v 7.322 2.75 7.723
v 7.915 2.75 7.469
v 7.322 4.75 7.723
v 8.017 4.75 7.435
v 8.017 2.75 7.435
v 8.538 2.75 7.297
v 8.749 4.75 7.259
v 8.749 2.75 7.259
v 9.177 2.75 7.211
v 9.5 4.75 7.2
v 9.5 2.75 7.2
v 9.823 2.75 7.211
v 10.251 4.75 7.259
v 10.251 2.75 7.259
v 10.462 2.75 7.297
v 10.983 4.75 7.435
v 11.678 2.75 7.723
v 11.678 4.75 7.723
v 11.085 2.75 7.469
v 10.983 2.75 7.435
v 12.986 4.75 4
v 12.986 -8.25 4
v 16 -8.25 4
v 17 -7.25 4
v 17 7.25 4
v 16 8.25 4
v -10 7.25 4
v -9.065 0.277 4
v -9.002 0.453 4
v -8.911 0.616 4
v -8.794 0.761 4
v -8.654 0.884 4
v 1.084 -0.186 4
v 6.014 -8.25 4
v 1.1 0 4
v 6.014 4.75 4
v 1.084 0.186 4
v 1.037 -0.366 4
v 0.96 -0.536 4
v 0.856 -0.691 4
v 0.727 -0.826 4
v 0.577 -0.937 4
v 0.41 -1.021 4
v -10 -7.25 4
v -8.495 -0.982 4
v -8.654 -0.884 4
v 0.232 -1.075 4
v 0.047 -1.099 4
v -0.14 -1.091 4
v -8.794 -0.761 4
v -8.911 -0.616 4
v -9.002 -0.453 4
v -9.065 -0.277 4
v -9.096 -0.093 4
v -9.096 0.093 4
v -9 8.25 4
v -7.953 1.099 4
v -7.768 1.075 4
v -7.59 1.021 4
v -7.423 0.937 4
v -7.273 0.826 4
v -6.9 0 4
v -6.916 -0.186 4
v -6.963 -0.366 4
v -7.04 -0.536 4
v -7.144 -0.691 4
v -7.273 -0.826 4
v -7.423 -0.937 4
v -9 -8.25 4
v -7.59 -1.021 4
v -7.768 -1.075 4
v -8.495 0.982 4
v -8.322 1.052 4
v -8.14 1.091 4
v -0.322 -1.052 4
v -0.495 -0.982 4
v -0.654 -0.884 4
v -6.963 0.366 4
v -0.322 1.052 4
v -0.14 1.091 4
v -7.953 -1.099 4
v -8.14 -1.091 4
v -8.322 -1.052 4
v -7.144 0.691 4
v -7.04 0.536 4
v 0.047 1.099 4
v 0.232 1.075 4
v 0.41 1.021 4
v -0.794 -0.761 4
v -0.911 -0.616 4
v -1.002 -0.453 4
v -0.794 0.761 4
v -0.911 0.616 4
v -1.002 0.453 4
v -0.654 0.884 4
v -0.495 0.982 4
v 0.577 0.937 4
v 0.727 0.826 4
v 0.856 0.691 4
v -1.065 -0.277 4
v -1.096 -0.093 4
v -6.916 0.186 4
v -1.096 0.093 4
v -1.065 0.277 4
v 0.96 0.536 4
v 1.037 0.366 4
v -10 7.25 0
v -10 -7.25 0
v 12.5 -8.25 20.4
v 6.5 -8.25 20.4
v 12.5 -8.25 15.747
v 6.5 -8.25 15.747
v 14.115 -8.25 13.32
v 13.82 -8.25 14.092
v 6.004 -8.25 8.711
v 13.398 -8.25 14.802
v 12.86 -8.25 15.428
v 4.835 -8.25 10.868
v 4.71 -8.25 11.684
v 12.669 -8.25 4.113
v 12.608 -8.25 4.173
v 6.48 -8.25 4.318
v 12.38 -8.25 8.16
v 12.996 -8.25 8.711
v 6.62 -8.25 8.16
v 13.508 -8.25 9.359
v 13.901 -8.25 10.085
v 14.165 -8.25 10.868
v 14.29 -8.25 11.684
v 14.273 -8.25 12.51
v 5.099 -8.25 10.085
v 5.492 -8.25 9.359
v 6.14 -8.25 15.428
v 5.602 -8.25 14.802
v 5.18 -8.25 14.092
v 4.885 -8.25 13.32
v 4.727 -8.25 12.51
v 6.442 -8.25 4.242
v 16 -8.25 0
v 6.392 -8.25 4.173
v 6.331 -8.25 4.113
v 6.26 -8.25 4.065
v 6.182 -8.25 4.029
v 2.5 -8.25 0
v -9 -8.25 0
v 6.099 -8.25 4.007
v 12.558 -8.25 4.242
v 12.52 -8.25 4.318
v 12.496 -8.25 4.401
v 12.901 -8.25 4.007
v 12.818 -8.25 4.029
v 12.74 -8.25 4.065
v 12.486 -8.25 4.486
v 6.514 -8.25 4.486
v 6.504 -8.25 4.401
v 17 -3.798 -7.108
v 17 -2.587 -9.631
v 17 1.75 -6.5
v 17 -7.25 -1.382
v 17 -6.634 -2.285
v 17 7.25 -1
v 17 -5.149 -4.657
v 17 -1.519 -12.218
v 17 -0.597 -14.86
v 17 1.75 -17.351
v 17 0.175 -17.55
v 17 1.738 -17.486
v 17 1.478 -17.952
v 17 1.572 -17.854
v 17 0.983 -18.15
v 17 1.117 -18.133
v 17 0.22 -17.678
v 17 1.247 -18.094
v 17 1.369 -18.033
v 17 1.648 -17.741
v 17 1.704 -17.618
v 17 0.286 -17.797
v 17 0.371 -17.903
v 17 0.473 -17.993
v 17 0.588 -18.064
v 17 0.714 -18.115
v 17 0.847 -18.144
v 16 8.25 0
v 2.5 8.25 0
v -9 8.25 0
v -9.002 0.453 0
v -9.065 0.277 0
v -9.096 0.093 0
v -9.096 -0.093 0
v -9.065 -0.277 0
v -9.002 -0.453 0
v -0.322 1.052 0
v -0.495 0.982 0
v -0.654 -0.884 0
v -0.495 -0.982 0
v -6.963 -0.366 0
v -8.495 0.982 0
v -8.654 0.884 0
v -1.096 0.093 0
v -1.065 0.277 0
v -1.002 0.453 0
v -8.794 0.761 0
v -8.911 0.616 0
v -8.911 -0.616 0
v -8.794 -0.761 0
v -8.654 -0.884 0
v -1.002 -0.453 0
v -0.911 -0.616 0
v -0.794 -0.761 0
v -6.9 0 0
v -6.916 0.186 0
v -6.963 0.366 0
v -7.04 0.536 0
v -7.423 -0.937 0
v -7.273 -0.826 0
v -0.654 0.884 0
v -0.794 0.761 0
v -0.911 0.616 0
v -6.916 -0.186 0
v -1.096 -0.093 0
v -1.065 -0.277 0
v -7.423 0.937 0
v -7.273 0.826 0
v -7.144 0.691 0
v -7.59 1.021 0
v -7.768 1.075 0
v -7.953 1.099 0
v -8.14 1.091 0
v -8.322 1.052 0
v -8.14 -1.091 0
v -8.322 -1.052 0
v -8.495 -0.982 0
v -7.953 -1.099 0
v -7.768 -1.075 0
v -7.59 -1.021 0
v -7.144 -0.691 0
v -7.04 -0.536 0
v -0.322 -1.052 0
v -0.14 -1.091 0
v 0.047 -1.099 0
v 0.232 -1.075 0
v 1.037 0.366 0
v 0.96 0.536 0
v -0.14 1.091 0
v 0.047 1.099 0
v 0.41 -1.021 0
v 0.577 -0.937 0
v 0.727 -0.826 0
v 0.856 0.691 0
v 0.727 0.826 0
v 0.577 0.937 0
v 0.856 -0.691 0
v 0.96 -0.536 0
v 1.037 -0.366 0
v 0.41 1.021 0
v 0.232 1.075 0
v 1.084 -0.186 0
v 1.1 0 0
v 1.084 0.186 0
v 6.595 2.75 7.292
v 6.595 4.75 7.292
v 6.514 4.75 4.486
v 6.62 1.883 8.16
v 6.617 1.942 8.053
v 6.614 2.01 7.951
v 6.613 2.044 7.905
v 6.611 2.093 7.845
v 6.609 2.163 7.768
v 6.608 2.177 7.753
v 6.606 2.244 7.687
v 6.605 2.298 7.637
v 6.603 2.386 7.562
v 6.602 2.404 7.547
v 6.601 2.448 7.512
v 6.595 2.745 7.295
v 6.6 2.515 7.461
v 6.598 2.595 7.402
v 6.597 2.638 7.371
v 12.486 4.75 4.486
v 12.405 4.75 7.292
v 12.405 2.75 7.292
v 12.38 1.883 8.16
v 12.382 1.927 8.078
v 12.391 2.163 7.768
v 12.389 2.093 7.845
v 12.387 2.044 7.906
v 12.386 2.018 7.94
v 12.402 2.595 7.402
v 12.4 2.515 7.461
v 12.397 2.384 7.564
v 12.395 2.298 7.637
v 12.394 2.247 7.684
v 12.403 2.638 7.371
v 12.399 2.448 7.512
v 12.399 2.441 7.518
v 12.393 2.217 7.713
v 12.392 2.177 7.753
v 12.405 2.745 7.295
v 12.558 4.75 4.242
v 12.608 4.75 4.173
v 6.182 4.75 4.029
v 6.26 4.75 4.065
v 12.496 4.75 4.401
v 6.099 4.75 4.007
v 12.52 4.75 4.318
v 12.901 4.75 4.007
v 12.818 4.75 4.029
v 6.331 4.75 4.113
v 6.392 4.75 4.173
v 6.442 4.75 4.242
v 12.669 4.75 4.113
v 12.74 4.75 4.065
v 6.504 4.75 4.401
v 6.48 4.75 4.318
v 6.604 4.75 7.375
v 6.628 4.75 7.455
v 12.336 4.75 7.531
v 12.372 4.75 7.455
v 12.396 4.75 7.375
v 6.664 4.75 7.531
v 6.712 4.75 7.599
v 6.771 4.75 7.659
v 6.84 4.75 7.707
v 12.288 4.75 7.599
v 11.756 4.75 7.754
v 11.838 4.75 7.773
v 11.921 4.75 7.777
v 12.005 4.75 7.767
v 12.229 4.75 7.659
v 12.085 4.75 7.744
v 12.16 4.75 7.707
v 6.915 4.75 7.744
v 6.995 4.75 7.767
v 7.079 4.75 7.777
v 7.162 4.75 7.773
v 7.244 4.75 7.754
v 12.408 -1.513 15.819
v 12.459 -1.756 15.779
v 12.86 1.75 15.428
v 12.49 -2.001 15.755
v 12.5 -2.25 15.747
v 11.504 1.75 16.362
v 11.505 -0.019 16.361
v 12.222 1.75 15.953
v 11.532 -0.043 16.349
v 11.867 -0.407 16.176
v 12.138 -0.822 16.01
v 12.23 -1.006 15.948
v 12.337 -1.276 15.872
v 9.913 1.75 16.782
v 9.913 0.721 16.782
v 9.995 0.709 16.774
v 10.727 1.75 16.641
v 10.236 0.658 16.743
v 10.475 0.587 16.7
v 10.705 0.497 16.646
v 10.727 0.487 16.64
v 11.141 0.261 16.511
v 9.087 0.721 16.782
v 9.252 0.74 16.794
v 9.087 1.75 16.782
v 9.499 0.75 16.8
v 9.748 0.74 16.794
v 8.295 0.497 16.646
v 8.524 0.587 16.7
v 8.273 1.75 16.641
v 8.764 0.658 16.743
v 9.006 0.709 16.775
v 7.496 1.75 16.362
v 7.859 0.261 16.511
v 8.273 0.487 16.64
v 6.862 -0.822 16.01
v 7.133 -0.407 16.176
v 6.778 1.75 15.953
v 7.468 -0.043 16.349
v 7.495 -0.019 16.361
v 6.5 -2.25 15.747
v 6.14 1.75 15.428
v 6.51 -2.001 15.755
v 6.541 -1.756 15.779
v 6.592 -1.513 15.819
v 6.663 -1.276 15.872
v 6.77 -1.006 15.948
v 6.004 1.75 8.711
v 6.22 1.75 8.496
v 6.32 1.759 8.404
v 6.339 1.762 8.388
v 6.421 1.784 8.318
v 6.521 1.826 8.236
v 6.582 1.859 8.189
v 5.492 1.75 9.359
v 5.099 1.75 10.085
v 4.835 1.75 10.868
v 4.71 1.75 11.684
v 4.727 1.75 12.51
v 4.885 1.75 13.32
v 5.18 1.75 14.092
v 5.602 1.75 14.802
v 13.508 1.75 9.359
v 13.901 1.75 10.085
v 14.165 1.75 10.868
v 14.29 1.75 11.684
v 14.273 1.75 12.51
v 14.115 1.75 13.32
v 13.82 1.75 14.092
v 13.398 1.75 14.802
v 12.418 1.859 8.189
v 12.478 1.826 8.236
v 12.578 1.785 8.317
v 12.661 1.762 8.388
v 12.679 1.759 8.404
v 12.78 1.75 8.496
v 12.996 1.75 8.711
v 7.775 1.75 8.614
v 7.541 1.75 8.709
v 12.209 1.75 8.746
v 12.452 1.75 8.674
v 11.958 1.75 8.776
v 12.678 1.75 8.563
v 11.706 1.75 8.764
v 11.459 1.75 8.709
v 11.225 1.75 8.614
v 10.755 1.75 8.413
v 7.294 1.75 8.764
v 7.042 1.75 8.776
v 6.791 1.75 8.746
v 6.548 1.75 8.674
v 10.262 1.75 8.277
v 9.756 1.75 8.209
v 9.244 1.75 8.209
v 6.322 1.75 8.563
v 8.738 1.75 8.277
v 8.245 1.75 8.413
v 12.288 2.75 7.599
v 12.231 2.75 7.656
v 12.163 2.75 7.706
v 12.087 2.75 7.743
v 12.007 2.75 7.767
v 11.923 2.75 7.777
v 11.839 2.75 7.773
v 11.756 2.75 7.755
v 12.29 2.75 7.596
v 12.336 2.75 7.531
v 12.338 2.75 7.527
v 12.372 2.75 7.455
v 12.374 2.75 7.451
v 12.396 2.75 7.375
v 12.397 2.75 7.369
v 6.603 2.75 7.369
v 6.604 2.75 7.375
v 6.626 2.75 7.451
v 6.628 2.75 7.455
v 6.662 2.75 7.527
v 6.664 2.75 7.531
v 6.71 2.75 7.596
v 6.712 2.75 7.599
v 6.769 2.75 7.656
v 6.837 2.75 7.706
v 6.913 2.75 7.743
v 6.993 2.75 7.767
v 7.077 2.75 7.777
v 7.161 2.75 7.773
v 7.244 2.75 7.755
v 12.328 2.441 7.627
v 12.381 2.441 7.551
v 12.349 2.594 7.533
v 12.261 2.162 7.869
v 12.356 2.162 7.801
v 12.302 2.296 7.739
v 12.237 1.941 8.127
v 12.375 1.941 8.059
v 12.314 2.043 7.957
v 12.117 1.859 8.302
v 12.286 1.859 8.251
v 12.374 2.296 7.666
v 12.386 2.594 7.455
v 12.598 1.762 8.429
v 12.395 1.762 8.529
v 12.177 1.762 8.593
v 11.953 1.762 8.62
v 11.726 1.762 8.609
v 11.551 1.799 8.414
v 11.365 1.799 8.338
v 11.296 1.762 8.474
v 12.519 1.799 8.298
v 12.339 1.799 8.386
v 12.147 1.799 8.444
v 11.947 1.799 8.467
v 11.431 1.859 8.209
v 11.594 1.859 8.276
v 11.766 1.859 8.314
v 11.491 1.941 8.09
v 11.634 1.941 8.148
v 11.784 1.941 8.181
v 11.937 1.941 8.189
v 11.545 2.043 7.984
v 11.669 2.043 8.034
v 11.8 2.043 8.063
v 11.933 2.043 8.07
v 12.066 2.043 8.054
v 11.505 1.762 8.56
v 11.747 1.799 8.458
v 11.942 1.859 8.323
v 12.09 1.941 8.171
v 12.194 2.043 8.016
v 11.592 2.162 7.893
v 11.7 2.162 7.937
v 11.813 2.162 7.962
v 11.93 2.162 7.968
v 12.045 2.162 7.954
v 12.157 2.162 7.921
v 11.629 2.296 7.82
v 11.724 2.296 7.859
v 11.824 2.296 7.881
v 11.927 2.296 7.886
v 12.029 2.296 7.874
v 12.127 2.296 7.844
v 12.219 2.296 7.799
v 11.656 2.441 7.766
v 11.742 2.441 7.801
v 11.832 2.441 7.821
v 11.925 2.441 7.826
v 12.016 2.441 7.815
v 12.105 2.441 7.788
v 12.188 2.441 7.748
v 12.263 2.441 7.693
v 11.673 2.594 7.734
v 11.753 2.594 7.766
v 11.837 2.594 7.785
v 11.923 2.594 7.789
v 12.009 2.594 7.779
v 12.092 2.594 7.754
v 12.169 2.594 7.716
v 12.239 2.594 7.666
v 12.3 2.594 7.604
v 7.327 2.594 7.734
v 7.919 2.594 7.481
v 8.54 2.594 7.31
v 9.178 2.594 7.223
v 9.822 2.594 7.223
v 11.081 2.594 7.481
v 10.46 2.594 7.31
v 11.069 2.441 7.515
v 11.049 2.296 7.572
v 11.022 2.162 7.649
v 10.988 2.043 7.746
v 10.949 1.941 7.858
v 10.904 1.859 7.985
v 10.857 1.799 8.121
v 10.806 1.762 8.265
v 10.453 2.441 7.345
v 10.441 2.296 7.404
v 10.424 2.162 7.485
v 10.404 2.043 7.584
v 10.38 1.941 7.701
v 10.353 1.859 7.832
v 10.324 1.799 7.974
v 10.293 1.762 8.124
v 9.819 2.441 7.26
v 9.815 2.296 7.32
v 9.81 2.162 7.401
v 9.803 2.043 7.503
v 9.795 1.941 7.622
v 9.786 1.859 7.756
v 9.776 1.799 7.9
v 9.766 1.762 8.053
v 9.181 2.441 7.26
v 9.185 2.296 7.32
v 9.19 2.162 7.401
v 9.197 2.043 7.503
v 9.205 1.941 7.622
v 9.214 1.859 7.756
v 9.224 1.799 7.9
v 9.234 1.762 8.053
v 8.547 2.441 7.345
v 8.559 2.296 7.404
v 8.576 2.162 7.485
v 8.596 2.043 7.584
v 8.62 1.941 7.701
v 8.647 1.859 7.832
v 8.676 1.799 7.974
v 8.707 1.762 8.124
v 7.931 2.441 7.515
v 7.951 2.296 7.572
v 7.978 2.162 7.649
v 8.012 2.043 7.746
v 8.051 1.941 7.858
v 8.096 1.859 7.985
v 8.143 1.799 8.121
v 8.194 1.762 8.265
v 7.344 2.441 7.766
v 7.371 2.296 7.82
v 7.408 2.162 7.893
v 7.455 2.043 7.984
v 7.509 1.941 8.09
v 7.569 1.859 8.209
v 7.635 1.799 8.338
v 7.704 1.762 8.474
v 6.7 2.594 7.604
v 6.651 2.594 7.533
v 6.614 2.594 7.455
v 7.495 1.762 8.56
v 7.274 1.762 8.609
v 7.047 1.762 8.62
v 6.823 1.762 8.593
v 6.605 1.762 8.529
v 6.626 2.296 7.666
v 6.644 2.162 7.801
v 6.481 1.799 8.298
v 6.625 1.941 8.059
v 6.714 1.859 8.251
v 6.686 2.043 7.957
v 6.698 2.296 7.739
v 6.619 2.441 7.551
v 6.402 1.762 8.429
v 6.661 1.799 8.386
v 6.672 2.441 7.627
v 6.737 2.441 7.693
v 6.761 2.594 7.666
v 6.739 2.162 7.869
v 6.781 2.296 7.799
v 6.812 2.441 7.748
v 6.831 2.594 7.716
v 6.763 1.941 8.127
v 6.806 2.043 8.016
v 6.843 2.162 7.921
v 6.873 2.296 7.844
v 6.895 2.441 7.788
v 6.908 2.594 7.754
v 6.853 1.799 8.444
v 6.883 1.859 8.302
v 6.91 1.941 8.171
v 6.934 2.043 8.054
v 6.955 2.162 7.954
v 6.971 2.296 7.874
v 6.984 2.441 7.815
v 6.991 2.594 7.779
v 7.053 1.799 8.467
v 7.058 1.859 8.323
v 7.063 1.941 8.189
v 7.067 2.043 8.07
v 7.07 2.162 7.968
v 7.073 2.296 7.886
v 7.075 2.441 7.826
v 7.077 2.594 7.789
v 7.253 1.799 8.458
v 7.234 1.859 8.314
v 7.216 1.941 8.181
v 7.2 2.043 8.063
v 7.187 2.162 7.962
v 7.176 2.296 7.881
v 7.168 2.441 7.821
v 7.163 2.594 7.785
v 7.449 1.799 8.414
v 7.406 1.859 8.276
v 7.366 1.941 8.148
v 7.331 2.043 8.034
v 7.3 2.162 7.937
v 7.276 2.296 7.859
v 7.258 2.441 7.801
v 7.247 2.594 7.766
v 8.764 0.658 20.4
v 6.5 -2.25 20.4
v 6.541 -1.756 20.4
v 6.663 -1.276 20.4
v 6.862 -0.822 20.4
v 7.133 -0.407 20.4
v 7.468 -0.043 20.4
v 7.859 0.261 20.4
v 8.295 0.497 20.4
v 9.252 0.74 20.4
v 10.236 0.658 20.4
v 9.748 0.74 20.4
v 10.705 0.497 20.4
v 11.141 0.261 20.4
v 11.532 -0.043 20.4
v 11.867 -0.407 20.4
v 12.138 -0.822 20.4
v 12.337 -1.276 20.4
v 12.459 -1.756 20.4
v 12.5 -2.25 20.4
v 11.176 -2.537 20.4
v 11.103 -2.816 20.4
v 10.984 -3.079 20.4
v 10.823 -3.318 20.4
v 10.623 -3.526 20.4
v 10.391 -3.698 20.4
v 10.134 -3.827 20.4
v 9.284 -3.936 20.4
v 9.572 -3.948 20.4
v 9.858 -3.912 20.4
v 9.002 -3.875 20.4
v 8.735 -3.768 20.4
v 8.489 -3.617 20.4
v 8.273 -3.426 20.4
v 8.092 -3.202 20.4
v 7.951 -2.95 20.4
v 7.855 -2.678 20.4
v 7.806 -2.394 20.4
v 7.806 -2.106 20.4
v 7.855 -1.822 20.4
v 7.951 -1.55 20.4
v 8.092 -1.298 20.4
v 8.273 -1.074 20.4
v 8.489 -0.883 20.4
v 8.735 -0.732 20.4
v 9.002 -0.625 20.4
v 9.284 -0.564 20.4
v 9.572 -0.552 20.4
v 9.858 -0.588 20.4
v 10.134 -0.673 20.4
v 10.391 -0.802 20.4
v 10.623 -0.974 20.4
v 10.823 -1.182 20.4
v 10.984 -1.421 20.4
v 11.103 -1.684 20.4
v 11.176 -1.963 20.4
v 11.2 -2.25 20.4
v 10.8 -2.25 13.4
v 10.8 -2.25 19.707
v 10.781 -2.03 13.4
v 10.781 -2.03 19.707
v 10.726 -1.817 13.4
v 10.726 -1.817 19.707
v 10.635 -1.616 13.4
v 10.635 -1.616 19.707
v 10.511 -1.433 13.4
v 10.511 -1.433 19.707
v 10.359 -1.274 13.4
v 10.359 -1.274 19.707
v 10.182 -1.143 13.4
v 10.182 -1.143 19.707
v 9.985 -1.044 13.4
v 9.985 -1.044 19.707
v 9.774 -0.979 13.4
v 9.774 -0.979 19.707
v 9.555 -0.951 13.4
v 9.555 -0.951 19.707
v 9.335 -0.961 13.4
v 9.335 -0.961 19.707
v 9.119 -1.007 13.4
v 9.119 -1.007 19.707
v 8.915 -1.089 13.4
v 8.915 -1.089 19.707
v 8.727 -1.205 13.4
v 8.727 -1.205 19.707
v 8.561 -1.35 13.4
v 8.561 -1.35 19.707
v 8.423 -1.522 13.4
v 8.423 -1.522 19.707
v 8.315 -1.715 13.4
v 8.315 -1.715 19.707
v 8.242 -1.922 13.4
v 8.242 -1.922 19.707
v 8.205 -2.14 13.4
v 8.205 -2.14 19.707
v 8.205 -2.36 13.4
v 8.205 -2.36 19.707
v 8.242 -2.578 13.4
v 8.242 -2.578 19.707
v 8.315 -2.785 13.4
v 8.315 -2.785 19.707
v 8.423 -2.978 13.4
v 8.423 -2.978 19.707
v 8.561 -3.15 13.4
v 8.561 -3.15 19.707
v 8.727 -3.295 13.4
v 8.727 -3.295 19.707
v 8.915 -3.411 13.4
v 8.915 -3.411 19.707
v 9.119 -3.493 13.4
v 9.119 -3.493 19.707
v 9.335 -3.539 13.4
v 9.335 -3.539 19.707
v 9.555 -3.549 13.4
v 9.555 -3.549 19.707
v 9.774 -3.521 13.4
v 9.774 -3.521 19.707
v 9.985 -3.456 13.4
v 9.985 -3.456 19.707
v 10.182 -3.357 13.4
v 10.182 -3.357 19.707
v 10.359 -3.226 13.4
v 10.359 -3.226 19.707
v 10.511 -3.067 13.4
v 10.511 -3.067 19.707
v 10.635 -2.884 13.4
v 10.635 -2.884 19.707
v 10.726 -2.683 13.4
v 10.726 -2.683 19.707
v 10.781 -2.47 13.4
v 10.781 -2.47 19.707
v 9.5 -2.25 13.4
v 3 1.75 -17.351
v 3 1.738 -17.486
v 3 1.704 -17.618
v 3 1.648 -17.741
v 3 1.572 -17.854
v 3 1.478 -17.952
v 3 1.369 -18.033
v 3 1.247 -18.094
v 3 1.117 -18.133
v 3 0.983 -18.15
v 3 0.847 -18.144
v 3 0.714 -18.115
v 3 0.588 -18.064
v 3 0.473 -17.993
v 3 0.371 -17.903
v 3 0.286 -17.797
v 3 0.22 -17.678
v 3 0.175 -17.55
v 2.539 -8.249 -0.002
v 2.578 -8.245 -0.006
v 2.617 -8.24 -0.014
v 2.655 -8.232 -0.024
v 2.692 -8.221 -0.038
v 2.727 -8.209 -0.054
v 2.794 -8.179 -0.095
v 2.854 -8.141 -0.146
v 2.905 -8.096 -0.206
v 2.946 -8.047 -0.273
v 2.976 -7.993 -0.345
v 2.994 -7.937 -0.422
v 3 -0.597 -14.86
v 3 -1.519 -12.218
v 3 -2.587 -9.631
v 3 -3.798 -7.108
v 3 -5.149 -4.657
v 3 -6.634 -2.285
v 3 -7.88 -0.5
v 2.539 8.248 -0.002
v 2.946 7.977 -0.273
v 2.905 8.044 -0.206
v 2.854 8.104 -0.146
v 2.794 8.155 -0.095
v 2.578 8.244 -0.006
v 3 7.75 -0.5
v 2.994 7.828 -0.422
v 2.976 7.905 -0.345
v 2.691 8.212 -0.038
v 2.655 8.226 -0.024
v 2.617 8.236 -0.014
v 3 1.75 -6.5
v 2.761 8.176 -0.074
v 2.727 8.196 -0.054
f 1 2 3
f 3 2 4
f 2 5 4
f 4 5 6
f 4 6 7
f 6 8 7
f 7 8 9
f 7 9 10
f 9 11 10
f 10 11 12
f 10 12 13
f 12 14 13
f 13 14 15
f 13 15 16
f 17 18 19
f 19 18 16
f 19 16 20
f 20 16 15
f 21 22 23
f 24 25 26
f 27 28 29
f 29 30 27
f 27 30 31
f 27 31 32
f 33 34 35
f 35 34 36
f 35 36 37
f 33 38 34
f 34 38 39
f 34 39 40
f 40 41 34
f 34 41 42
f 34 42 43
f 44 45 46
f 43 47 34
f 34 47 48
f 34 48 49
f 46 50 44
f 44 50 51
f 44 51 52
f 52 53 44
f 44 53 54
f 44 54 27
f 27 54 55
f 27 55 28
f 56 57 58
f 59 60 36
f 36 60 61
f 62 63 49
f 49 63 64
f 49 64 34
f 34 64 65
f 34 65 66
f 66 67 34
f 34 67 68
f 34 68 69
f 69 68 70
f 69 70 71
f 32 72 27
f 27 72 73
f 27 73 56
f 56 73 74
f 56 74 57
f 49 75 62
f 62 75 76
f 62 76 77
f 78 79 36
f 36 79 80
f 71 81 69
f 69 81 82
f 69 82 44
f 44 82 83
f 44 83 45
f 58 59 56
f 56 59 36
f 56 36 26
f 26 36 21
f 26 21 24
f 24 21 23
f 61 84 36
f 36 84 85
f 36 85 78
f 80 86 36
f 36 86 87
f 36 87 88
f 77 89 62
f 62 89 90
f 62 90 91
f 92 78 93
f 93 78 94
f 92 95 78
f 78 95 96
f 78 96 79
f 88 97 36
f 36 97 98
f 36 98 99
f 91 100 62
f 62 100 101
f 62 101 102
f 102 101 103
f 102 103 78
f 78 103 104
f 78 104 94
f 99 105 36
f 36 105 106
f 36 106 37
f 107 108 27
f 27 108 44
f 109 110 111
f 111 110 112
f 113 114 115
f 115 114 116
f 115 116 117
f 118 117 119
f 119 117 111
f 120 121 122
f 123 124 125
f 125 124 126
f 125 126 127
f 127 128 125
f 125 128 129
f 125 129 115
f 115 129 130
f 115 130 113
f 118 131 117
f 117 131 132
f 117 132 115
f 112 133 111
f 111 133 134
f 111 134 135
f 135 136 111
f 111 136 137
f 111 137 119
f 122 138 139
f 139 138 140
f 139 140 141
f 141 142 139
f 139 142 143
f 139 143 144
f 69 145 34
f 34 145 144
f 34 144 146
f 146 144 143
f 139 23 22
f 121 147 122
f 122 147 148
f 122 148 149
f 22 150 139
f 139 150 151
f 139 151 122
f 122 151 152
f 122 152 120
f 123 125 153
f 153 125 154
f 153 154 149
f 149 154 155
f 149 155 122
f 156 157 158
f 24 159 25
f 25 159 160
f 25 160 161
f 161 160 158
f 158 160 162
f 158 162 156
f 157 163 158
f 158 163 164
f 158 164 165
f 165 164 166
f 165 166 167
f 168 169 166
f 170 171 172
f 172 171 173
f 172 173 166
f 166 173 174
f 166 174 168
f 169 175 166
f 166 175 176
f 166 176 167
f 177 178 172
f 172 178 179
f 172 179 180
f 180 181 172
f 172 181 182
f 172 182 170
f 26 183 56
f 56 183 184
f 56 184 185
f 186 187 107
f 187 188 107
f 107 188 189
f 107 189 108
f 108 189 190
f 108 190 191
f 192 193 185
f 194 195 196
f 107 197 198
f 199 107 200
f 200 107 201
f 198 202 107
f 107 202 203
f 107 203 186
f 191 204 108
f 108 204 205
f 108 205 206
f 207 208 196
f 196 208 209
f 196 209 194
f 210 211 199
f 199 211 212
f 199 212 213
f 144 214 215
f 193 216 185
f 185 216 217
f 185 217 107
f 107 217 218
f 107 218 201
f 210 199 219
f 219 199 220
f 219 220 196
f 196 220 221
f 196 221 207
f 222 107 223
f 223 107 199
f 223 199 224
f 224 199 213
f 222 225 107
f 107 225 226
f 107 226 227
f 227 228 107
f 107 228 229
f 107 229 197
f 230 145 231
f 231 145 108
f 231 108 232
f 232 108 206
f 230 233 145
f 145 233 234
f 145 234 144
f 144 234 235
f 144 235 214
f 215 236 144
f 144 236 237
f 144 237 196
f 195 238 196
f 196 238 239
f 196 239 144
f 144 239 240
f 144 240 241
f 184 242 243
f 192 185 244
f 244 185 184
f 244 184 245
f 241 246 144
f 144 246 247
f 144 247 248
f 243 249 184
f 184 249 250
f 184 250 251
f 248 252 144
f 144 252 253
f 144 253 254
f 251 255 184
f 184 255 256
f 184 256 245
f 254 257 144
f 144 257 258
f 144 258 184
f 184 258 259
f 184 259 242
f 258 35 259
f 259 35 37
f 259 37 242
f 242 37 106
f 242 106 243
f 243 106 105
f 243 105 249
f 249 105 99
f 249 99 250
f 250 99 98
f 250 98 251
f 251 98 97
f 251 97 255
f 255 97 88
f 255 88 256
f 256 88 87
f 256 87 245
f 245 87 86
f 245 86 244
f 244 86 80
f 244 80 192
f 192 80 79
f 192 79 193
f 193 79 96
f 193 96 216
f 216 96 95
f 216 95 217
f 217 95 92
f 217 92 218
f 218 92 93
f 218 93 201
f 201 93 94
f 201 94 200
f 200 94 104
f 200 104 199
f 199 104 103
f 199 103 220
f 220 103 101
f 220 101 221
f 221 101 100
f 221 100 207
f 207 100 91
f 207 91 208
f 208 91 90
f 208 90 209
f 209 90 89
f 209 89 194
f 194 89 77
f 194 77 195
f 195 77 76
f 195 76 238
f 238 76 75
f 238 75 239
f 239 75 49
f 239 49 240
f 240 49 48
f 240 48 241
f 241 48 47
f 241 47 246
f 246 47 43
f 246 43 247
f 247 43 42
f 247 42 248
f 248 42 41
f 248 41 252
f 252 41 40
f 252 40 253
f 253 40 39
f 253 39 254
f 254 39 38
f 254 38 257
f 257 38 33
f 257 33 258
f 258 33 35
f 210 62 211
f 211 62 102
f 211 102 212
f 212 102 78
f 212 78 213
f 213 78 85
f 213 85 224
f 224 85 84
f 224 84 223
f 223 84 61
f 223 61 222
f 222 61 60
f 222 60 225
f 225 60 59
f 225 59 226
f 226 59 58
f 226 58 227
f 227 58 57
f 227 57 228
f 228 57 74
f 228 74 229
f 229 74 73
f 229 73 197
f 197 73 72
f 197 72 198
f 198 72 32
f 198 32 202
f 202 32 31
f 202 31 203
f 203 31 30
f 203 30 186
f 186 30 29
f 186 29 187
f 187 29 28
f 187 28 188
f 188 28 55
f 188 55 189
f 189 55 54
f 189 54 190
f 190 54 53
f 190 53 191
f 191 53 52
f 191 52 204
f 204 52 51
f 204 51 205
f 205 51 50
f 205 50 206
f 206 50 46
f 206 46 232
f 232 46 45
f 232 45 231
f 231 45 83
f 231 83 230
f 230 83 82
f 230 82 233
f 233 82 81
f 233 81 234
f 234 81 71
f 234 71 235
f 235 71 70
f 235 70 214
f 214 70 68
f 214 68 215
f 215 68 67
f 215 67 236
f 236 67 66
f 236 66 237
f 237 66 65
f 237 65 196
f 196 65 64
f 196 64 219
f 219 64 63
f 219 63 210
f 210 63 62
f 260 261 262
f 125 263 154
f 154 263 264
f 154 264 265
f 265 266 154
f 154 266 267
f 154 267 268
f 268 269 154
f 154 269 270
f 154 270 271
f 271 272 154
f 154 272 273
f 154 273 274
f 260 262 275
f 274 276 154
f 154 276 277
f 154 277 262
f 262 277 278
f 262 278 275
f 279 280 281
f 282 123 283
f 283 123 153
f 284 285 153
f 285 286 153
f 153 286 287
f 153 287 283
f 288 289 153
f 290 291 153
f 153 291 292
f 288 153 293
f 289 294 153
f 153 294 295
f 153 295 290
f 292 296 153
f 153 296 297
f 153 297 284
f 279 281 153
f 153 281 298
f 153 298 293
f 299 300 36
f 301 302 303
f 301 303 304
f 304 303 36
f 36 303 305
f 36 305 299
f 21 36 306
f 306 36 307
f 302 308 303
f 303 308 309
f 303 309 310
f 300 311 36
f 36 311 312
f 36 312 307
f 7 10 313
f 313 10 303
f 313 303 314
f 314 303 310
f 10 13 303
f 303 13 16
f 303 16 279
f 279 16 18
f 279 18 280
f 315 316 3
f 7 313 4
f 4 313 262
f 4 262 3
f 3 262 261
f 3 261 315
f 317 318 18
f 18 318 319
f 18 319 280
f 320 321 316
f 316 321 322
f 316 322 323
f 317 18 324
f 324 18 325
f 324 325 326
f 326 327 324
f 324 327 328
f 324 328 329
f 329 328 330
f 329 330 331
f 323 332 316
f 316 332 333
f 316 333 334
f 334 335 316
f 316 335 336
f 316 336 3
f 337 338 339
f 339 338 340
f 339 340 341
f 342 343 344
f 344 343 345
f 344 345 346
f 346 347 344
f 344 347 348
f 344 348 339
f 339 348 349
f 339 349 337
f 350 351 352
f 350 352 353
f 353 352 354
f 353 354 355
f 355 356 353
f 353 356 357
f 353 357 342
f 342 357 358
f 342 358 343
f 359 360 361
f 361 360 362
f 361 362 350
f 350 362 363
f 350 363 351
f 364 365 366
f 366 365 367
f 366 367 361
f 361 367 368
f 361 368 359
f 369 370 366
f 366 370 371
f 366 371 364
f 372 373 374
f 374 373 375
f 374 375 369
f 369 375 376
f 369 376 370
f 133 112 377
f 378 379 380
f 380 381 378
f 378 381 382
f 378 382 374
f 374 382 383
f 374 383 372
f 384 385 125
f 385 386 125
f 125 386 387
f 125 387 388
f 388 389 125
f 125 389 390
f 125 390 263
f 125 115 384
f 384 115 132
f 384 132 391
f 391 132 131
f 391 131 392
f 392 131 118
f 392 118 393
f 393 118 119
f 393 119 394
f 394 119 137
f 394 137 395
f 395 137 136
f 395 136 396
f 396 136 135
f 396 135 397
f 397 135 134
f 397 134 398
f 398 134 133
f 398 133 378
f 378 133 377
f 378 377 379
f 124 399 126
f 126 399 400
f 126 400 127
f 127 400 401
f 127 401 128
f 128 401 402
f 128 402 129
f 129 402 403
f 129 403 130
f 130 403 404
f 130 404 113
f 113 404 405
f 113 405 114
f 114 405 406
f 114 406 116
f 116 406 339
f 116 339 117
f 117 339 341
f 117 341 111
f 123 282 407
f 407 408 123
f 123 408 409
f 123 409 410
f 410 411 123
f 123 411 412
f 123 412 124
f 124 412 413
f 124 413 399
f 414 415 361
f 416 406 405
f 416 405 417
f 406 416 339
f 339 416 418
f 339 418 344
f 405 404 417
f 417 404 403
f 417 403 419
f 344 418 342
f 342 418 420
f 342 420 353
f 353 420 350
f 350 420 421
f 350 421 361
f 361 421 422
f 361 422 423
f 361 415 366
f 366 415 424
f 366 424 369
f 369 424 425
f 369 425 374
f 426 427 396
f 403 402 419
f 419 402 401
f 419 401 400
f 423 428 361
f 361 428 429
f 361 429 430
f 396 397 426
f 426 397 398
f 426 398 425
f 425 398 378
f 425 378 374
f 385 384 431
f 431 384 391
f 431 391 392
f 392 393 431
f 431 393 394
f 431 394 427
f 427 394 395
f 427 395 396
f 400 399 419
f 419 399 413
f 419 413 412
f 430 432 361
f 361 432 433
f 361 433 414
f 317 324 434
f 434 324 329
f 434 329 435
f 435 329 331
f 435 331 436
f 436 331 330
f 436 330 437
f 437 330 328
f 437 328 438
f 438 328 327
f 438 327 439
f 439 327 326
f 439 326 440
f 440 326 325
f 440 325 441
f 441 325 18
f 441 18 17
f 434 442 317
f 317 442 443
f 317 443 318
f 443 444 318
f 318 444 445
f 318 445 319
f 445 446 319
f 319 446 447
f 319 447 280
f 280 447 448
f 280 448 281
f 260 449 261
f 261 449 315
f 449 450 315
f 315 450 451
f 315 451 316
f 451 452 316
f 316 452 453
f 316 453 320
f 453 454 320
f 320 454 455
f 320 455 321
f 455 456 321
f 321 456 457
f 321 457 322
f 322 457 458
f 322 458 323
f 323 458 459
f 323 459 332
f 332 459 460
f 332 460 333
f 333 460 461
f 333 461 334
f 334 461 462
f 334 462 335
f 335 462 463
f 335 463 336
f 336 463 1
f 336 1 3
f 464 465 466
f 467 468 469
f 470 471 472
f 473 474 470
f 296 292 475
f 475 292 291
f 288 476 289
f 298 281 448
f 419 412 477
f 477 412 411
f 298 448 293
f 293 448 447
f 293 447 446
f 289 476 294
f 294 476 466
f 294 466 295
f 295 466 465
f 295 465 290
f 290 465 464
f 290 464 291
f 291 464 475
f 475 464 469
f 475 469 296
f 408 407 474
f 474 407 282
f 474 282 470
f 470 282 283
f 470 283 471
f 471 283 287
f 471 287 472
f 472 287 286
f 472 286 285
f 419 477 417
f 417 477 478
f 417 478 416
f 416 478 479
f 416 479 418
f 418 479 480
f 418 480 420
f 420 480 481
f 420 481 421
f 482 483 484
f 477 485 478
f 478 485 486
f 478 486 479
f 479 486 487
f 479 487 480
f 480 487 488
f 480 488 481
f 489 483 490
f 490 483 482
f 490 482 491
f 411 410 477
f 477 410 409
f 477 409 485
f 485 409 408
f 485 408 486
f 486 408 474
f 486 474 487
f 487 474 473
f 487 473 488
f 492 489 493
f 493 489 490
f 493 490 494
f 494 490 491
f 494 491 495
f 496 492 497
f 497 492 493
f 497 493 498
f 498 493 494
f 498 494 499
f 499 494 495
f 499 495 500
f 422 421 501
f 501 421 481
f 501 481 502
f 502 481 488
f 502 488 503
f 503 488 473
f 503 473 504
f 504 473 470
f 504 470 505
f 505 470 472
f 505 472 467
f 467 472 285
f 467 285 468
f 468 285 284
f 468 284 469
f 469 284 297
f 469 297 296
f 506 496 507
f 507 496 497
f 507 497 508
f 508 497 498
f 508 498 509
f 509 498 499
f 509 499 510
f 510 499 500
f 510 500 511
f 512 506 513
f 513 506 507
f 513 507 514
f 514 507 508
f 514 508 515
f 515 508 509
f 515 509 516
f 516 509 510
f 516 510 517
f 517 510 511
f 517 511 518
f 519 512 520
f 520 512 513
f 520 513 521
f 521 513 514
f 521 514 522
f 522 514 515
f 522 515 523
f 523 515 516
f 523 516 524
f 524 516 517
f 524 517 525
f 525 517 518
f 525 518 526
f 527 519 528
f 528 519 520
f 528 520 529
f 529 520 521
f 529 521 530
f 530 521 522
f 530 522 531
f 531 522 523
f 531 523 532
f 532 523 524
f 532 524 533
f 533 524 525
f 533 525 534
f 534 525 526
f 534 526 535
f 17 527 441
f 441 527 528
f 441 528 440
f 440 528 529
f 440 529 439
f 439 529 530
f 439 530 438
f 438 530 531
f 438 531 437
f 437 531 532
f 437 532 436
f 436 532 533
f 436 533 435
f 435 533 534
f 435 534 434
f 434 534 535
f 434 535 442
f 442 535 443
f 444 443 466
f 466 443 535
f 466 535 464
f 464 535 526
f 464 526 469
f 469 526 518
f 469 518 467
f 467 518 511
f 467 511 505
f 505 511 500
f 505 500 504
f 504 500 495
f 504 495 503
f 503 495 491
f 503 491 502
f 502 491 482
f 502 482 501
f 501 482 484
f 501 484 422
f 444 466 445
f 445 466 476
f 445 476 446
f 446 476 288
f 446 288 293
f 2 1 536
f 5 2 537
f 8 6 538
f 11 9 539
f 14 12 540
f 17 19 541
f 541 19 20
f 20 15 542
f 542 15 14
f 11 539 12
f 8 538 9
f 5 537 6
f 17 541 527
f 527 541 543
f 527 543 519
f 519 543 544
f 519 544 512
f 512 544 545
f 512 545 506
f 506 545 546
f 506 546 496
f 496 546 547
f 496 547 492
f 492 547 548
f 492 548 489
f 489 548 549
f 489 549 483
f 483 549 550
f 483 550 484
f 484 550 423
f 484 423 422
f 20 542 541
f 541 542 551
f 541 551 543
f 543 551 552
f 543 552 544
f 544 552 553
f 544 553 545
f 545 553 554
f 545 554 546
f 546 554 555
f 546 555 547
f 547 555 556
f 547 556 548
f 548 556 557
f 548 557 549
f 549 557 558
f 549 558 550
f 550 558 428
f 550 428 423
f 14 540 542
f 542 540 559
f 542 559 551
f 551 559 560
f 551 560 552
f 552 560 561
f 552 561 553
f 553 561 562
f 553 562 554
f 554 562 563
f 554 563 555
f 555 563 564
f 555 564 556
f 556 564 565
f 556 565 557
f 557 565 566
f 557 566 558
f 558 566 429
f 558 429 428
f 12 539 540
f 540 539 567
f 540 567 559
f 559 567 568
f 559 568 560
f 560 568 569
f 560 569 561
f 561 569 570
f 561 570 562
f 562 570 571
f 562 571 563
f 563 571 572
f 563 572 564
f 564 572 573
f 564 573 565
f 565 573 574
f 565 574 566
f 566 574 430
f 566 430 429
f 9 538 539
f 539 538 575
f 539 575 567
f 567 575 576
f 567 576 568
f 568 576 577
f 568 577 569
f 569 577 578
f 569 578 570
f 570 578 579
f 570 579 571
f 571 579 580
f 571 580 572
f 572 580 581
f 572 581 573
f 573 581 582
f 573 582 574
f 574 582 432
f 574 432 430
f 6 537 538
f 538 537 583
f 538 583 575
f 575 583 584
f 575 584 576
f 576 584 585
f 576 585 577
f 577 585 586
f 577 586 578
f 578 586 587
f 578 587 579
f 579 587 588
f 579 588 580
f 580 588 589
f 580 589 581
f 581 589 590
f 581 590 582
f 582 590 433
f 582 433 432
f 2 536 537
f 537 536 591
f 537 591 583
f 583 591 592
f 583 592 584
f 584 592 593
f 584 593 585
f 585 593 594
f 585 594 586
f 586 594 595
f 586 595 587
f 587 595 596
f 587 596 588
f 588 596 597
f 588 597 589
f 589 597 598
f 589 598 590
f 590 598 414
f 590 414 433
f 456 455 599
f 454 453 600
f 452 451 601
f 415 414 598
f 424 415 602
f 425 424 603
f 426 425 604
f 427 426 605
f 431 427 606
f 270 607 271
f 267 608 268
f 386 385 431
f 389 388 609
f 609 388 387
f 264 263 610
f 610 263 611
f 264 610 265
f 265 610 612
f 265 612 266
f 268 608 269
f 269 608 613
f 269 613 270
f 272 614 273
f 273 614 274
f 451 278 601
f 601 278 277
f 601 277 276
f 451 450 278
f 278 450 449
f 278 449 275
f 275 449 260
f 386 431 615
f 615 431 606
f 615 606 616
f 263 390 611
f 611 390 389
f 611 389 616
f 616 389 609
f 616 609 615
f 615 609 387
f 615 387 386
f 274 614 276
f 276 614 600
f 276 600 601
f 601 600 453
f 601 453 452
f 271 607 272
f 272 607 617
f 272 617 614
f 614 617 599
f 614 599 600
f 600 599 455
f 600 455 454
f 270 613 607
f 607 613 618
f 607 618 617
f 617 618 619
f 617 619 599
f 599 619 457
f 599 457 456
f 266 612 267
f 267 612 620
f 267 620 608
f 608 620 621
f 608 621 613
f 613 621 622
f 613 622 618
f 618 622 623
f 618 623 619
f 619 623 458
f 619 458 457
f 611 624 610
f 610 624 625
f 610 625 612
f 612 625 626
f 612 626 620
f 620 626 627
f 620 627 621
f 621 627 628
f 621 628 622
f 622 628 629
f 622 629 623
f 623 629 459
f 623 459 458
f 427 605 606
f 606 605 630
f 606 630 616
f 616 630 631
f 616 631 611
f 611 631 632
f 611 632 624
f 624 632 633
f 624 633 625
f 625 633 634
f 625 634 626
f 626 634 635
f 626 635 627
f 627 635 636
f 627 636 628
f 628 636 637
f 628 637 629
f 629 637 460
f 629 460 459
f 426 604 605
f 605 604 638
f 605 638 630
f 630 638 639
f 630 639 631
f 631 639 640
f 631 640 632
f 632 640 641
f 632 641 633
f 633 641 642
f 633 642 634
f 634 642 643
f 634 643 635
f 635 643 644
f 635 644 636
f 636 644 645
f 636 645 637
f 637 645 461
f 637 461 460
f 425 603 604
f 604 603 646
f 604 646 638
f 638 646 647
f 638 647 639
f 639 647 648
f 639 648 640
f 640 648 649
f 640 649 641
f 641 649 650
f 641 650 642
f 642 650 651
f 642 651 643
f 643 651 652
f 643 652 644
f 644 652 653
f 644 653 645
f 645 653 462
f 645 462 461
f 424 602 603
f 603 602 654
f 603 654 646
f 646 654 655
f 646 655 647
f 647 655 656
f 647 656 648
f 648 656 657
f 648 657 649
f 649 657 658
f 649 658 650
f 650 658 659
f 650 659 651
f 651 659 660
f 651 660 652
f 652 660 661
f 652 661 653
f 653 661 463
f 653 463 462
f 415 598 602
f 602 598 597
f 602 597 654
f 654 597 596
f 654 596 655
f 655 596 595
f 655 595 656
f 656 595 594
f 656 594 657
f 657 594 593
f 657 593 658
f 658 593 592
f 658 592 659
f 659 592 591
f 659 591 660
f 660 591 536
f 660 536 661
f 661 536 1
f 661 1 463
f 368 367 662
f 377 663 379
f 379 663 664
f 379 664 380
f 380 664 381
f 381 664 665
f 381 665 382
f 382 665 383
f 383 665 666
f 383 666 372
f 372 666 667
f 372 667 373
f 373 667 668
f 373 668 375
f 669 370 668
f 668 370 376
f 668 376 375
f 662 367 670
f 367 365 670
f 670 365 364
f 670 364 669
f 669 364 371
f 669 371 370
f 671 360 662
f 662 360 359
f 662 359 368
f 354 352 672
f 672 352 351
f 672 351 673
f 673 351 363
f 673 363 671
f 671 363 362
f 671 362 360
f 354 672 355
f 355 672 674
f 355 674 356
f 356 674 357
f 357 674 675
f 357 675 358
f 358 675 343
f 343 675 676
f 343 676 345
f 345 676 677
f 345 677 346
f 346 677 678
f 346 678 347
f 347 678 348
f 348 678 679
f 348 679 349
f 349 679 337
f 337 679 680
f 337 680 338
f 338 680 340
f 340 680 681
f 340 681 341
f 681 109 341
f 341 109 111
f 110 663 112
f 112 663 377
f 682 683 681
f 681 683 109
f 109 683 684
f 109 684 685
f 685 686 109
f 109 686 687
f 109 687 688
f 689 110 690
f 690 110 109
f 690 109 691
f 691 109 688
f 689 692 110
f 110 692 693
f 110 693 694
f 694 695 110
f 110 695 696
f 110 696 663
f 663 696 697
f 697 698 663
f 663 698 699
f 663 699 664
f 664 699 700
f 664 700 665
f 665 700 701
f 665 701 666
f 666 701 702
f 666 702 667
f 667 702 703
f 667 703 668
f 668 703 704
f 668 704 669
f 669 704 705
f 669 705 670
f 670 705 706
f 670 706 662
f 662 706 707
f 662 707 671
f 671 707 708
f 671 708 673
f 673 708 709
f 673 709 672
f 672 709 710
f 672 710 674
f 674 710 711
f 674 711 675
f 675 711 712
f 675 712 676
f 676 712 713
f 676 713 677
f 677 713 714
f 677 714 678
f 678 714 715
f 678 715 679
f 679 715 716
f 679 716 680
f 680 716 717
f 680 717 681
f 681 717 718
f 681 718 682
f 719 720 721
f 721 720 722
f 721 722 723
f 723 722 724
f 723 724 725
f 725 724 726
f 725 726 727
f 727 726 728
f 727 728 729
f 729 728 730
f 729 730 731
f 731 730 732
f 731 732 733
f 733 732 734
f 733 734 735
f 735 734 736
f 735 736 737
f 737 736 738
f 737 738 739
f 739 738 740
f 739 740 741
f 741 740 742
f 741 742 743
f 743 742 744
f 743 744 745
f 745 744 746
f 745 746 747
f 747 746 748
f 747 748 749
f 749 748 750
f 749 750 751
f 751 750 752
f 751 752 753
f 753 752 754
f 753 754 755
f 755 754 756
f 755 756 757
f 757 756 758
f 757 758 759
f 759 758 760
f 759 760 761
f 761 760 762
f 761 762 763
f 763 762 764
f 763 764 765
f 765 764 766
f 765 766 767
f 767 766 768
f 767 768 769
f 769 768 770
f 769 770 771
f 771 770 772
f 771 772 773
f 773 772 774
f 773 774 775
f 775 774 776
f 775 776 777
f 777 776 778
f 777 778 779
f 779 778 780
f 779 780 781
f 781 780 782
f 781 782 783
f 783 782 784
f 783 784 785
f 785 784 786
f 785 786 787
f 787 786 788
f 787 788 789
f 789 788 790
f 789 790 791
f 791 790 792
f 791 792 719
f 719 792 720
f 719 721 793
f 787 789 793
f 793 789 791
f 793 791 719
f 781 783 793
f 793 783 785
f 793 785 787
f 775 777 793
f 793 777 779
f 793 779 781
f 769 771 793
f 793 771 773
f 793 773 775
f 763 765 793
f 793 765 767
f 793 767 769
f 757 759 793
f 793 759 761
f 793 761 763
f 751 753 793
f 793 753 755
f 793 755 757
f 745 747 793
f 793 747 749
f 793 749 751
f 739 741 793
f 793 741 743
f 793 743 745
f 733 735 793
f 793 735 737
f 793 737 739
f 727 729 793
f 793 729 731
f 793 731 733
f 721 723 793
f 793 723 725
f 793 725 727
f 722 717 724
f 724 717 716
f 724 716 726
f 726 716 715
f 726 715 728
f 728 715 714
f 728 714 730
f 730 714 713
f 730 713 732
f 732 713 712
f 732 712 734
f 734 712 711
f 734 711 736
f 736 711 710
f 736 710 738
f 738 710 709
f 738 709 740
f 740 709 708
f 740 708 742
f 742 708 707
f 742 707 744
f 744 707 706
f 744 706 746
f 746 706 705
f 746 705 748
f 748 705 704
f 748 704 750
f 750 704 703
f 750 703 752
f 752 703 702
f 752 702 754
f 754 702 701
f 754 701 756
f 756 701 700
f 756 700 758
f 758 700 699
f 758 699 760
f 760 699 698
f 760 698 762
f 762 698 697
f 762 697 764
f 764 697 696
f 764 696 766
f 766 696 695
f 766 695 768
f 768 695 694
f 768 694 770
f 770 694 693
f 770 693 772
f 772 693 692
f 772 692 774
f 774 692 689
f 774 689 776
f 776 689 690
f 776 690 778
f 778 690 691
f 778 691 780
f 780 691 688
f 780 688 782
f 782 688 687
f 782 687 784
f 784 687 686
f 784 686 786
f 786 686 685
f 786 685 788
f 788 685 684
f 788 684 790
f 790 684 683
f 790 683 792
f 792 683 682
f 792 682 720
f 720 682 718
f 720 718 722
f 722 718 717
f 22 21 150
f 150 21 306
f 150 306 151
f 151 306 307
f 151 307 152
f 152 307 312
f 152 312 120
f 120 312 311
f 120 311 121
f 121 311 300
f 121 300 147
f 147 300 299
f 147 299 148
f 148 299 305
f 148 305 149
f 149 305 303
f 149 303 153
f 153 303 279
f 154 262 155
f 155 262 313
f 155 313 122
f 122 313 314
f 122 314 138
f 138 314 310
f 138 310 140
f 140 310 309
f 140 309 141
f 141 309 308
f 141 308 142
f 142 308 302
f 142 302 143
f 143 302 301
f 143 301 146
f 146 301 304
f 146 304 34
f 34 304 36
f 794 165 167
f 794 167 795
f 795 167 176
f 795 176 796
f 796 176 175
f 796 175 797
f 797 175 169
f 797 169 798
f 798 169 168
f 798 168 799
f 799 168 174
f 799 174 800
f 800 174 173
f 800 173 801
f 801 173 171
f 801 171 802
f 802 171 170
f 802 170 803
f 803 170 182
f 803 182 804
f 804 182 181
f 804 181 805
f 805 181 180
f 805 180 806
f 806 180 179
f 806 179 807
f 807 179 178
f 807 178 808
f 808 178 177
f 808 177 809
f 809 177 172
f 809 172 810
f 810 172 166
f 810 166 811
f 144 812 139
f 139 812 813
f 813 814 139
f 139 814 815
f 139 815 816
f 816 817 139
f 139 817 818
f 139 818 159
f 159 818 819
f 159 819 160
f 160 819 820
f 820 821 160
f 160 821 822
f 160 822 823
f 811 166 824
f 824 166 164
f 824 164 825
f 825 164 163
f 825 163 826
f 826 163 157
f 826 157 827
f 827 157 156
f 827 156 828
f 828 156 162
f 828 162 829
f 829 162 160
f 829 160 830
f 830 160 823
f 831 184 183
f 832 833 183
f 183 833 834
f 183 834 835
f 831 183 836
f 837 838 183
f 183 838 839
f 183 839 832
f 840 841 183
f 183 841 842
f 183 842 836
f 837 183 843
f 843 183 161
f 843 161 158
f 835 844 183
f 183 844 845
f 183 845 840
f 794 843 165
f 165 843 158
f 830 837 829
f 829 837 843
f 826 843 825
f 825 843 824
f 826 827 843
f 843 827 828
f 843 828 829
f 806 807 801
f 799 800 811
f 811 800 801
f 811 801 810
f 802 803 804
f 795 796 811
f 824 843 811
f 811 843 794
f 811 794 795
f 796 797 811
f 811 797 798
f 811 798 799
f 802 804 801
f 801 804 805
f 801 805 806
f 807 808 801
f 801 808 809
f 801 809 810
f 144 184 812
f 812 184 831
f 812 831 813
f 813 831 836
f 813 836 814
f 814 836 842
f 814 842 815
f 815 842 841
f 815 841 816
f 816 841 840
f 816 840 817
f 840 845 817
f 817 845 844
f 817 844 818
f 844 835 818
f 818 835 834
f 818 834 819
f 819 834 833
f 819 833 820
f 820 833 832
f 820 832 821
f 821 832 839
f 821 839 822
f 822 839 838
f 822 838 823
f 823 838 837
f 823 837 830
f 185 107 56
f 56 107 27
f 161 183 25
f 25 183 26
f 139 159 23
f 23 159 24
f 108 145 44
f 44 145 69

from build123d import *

# Parameters (mm, degrees)
SKETCH_1_W           = 27
SKETCH_1_H           = 16.5
EXTRUDE_1_DEPTH      = 4
SKETCH_2_R           = 1.1
CUT_EXTRUDE_1_DEPTH  = 4
SKETCH_3_R           = 4.8
EXTRUDE_2_DEPTH      = 10
EXTRUDE_3_DEPTH      = 13
FILLET_1_R           = 0.5
FILLET_2_R           = 1
EXTRUDE_4_REACH      = 29.807
EXTRUDE_4_END_RADIUS = 4.8
SKETCH_7_R           = 1.3
CUT_EXTRUDE_3_DEPTH  = 7
CHAMFER_1_SIZE       = 0.4
CHAMFER_1_SIZE2      = 0.692820323
FILLET_3_R           = 0.5
EXTRUDE_5_DEPTH      = 14
FILLET_4_R           = 0.5
CHAMFER_2_SIZE       = 1


with BuildPart() as part:
    # 草图1 → 凸台-拉伸1 (new body)
    with BuildSketch(Plane.XY):
        with Locations((3.5, 0)):
            Rectangle(SKETCH_1_W, SKETCH_1_H)
    extrude(amount=EXTRUDE_1_DEPTH)

    # 草图2 → 切除-拉伸1 (cut)
    with BuildSketch(Plane.XY.offset(4)):
        with Locations((-8, 0)):
            Circle(SKETCH_2_R)
        Circle(SKETCH_2_R)
    extrude(amount=-CUT_EXTRUDE_1_DEPTH, mode=Mode.SUBTRACT)



with BuildPart() as body_2:
    # 草图3 → 凸台-拉伸2 (new body)
    with BuildSketch(Plane.XZ.offset(8.25)):
        with Locations(Location((9.5, 12, 0), (0, 0, 270))):
            Circle(SKETCH_3_R)
    extrude(amount=-EXTRUDE_2_DEPTH)


with BuildPart() as part_1:
    add(part.part)

    add(body_2.part)  # 凸台-拉伸3 merges body 2
    # 草图4 → 凸台-拉伸3 (add)
    with BuildSketch(Plane.XZ.offset(8.25)):
        with BuildLine():
            Line((6.5, 4), (12.5, 4))
            Line((12.5, 4), (12.38, 8.16))
            ThreePointArc((12.38, 8.16), (9.5, 7.2), (6.62, 8.16))
            Line((6.62, 8.16), (6.5, 4))
        make_face()
    extrude(amount=-EXTRUDE_3_DEPTH)

    # 圆角1
    fillet_1_edges = [part_1.edges().sort_by_distance(p)[0] for p in [
        (6.62, 3.25, 8.16),
        (12.38, 3.25, 8.16),
    ]]
    fillet(fillet_1_edges, radius=FILLET_1_R)

    # 圆角2
    # the kernel refuses this fillet: 1 mm, written as the material it adds along each edge
    with BuildSketch(Plane(origin=(7.094742907, 1.75, 7.277210748), x_dir=(0.45382209295910925, 0, 0.891092311683932), z_dir=(0.891092311683932, 0, -0.45382209295910925))) as fillet_2_piece_1_section:
        with BuildLine():
            CenterArc((0.5 + FILLET_2_R, -FILLET_2_R), FILLET_2_R, 90, 90)
            Line((0.5, -FILLET_2_R), (0.5, 0))
            Line((0.5, 0), (0.5 + FILLET_2_R, 0))
        make_face()
    fillet_2_piece_1 = revolve(axis=Axis((7.094742907, 1.75, 7.277210748), (0, -1, 0)), revolution_arc=359.64, mode=Mode.PRIVATE)
    fillet_2_piece_1 = split(fillet_2_piece_1, bisect_by=Plane(origin=(6.594950803, 1.75, 7.291627828), z_dir=(0.9995842091710025, 0, -0.02883415987993323)), keep=Keep.TOP, mode=Mode.PRIVATE)
    add(fillet_2_piece_1)
    with BuildSketch(Plane(origin=(7.094742907, 1.75, 7.277210748), x_dir=(0.45382209295910925, 0, 0.891092311683932), z_dir=(0.891092311683932, 0, -0.45382209295910925))) as fillet_2_piece_2_section:
        with BuildLine():
            CenterArc((0.5 + FILLET_2_R, -FILLET_2_R), FILLET_2_R, 90, 90)
            Line((0.5, -FILLET_2_R), (0.5, 0))
            Line((0.5, 0), (0.5 + FILLET_2_R, 0))
        make_face()
    fillet_2_piece_2 = revolve(axis=Axis((7.094742907, 1.75, 7.277210748), (0, -1, 0)), revolution_arc=359.64, mode=Mode.PRIVATE)
    fillet_2_piece_2 = fillet_2_piece_2 & Plane(origin=(9.5, 1.75, 12), x_dir=(0.6, 0, -0.8000000000000002), z_dir=(0, -1, 0)) * Cylinder(4.8, 6, mode=Mode.PRIVATE)
    add(fillet_2_piece_2)
    with BuildSketch(Plane(origin=(11.905257093, 1.75, 7.277210748), x_dir=(-0.45941199618044226, 0, 0.8882232927397824), z_dir=(0.8882232927397824, 0, 0.45941199618044226))) as fillet_2_piece_3_section:
        with BuildLine():
            CenterArc((0.5 + FILLET_2_R, -FILLET_2_R), FILLET_2_R, 90, 90)
            Line((0.5 + FILLET_2_R, 0), (0.5, 0))
            Line((0.5, 0), (0.5, -FILLET_2_R))
        make_face()
    fillet_2_piece_3 = revolve(axis=Axis((11.905257093, 1.75, 7.277210748), (0, -1, 0)), revolution_arc=359.64, mode=Mode.PRIVATE)
    fillet_2_piece_3 = split(fillet_2_piece_3, bisect_by=Plane(origin=(12.405049197, 1.75, 7.291627828), z_dir=(-0.9995842091710025, 0, -0.02883415987993387)), keep=Keep.TOP, mode=Mode.PRIVATE)
    add(fillet_2_piece_3)
    with BuildSketch(Plane(origin=(11.905257093, 1.75, 7.277210748), x_dir=(-0.45941199618044226, 0, 0.8882232927397824), z_dir=(0.8882232927397824, 0, 0.45941199618044226))) as fillet_2_piece_4_section:
        with BuildLine():
            CenterArc((0.5 + FILLET_2_R, -FILLET_2_R), FILLET_2_R, 90, 90)
            Line((0.5 + FILLET_2_R, 0), (0.5, 0))
            Line((0.5, 0), (0.5, -FILLET_2_R))
        make_face()
    fillet_2_piece_4 = revolve(axis=Axis((11.905257093, 1.75, 7.277210748), (0, -1, 0)), revolution_arc=359.64, mode=Mode.PRIVATE)
    fillet_2_piece_4 = fillet_2_piece_4 & Plane(origin=(9.5, 1.75, 12), x_dir=(0.6, 0, -0.8000000000000002), z_dir=(0, -1, 0)) * Cylinder(4.8, 7, mode=Mode.PRIVATE)
    add(fillet_2_piece_4)
    with BuildSketch(Plane(origin=(9.5, 1.75, 12), x_dir=(-0.4538220929591119, 0, -0.8910923116839305), z_dir=(-0.8910923116839305, 0, 0.4538220929591119))) as fillet_2_piece_5:
        with BuildLine():
            CenterArc((4.8 - FILLET_2_R, -FILLET_2_R), FILLET_2_R, 0, 90)
            Line((4.8, -FILLET_2_R), (4.8, 0))
            Line((4.8, 0), (4.8 - FILLET_2_R, 0))
        make_face()
    revolve(axis=Axis((9.5, 1.75, 12), (0, -1, 0)), revolution_arc=53.978342396)

    # 凸台-拉伸4: up to this cylinder (the profile starts outside it)
    extrude_4_end = Plane(origin=(9.5, -4.045075, 12), z_dir=(0, -1, 0)) * Cylinder(EXTRUDE_4_END_RADIUS, 70.214, mode=Mode.PRIVATE)
    # 草图5 → 凸台-拉伸4 (add, up to the surface)
    with BuildSketch(Plane.XY.offset(20.4), mode=Mode.PRIVATE) as extrude_4_sk1:
        with BuildLine():
            Line((6.5, -8.25), (6.5, -2.25))
            ThreePointArc((6.5, -2.25), (9.5, 0.75), (12.5, -2.25))
            Line((12.5, -2.25), (12.5, -8.25))
            Line((12.5, -8.25), (6.5, -8.25))
        make_face()
    extrude_4_tool1 = extrude(extrude_4_sk1.sketch, amount=-EXTRUDE_4_REACH, mode=Mode.PRIVATE) - extrude_4_end
    add(extrude_4_tool1.solids().sort_by_distance((9.5, -4.045075, 20.4))[0])

    # 草图7 → 切除-拉伸3 (cut)
    with BuildSketch(Plane.XY.offset(20.4)):
        with Locations((9.5, -2.25)):
            Circle(SKETCH_7_R)
    extrude(amount=-CUT_EXTRUDE_3_DEPTH, mode=Mode.SUBTRACT)

    # 倒角1
    chamfer_1_edges = [part_1.edges().sort_by_distance(p)[0] for p in [
        (8.2, -2.25, 20.4),
    ]]
    chamfer_1_side = [part_1.faces().sort_by_distance(p)[0] for p in [
        (9.5, -4.257679358, 20.4),
    ]]
    chamfer(chamfer_1_edges, length=CHAMFER_1_SIZE, length2=CHAMFER_1_SIZE2, reference=chamfer_1_side[0])

    # 圆角3
    fillet_3_edges = [part_1.edges().sort_by_distance(p)[0] for p in [
        (6.5, -1.75, 4),
        (12.5, -1.75, 4),
    ]]
    fillet(fillet_3_edges, radius=FILLET_3_R)

    # 草图8 → 凸台-拉伸5 (add)
    with BuildSketch(Plane(origin=(17, 0, 0), x_dir=(0, 0, -1), z_dir=(1, 0, 0))):
        with BuildLine():
            Line((6.5, 1.75), (17.350889359, 1.75))
            ThreePointArc((17.350889359, 1.75), (18.144565149, 1.050392929), (17.550087952, 0.17519685))
            ThreePointArc((17.550087952, 0.17519685), (8.361036446, -3.17500409), (0, -8.25))
            Line((0, -8.25), (0, 8.25))
            Line((0, 8.25), (6.5, 1.75))
        make_face()
    extrude(amount=-EXTRUDE_5_DEPTH)

    # 圆角4
    # the kernel refuses this fillet: 0.5 mm, written as the material it adds along each edge
    with BuildSketch(Plane(origin=(3, -8.25, 0), x_dir=(-1, 0, 0), z_dir=(0, 1, 0))) as fillet_4_piece_1_section:
        with BuildLine():
            CenterArc((FILLET_4_R, -FILLET_4_R), FILLET_4_R, 90, 90)
            Line((0, -FILLET_4_R), (0, 0))
            Line((0, 0), (FILLET_4_R, 0))
        make_face()
    fillet_4_piece_1 = extrude(amount=16.5, mode=Mode.PRIVATE)
    fillet_4_piece_1 = fillet_4_piece_1 - Plane(origin=(3, -48.25, -30), x_dir=(0, 0.9685039370078732, 0.24899824095814338), z_dir=(1, 0, 0)) * Cylinder(50, 35, mode=Mode.PRIVATE)
    fillet_4_piece_1 = split(fillet_4_piece_1, bisect_by=Plane(origin=(3, 0, -8.25), z_dir=(0, -0.7071067811865462, 0.7071067811865488)), keep=Keep.TOP, mode=Mode.PRIVATE)
    add(fillet_4_piece_1)

    # 倒角2
    chamfer_2_edges = [part_1.edges().sort_by_distance(p)[0] for p in [
        (-10, 8.25, 2),
        (17, 8.25, 2),
        (17, -8.25, 2),
        (-10, -8.25, 2),
    ]]
    chamfer(chamfer_2_edges, length=CHAMFER_2_SIZE)


solid = part_1.part
